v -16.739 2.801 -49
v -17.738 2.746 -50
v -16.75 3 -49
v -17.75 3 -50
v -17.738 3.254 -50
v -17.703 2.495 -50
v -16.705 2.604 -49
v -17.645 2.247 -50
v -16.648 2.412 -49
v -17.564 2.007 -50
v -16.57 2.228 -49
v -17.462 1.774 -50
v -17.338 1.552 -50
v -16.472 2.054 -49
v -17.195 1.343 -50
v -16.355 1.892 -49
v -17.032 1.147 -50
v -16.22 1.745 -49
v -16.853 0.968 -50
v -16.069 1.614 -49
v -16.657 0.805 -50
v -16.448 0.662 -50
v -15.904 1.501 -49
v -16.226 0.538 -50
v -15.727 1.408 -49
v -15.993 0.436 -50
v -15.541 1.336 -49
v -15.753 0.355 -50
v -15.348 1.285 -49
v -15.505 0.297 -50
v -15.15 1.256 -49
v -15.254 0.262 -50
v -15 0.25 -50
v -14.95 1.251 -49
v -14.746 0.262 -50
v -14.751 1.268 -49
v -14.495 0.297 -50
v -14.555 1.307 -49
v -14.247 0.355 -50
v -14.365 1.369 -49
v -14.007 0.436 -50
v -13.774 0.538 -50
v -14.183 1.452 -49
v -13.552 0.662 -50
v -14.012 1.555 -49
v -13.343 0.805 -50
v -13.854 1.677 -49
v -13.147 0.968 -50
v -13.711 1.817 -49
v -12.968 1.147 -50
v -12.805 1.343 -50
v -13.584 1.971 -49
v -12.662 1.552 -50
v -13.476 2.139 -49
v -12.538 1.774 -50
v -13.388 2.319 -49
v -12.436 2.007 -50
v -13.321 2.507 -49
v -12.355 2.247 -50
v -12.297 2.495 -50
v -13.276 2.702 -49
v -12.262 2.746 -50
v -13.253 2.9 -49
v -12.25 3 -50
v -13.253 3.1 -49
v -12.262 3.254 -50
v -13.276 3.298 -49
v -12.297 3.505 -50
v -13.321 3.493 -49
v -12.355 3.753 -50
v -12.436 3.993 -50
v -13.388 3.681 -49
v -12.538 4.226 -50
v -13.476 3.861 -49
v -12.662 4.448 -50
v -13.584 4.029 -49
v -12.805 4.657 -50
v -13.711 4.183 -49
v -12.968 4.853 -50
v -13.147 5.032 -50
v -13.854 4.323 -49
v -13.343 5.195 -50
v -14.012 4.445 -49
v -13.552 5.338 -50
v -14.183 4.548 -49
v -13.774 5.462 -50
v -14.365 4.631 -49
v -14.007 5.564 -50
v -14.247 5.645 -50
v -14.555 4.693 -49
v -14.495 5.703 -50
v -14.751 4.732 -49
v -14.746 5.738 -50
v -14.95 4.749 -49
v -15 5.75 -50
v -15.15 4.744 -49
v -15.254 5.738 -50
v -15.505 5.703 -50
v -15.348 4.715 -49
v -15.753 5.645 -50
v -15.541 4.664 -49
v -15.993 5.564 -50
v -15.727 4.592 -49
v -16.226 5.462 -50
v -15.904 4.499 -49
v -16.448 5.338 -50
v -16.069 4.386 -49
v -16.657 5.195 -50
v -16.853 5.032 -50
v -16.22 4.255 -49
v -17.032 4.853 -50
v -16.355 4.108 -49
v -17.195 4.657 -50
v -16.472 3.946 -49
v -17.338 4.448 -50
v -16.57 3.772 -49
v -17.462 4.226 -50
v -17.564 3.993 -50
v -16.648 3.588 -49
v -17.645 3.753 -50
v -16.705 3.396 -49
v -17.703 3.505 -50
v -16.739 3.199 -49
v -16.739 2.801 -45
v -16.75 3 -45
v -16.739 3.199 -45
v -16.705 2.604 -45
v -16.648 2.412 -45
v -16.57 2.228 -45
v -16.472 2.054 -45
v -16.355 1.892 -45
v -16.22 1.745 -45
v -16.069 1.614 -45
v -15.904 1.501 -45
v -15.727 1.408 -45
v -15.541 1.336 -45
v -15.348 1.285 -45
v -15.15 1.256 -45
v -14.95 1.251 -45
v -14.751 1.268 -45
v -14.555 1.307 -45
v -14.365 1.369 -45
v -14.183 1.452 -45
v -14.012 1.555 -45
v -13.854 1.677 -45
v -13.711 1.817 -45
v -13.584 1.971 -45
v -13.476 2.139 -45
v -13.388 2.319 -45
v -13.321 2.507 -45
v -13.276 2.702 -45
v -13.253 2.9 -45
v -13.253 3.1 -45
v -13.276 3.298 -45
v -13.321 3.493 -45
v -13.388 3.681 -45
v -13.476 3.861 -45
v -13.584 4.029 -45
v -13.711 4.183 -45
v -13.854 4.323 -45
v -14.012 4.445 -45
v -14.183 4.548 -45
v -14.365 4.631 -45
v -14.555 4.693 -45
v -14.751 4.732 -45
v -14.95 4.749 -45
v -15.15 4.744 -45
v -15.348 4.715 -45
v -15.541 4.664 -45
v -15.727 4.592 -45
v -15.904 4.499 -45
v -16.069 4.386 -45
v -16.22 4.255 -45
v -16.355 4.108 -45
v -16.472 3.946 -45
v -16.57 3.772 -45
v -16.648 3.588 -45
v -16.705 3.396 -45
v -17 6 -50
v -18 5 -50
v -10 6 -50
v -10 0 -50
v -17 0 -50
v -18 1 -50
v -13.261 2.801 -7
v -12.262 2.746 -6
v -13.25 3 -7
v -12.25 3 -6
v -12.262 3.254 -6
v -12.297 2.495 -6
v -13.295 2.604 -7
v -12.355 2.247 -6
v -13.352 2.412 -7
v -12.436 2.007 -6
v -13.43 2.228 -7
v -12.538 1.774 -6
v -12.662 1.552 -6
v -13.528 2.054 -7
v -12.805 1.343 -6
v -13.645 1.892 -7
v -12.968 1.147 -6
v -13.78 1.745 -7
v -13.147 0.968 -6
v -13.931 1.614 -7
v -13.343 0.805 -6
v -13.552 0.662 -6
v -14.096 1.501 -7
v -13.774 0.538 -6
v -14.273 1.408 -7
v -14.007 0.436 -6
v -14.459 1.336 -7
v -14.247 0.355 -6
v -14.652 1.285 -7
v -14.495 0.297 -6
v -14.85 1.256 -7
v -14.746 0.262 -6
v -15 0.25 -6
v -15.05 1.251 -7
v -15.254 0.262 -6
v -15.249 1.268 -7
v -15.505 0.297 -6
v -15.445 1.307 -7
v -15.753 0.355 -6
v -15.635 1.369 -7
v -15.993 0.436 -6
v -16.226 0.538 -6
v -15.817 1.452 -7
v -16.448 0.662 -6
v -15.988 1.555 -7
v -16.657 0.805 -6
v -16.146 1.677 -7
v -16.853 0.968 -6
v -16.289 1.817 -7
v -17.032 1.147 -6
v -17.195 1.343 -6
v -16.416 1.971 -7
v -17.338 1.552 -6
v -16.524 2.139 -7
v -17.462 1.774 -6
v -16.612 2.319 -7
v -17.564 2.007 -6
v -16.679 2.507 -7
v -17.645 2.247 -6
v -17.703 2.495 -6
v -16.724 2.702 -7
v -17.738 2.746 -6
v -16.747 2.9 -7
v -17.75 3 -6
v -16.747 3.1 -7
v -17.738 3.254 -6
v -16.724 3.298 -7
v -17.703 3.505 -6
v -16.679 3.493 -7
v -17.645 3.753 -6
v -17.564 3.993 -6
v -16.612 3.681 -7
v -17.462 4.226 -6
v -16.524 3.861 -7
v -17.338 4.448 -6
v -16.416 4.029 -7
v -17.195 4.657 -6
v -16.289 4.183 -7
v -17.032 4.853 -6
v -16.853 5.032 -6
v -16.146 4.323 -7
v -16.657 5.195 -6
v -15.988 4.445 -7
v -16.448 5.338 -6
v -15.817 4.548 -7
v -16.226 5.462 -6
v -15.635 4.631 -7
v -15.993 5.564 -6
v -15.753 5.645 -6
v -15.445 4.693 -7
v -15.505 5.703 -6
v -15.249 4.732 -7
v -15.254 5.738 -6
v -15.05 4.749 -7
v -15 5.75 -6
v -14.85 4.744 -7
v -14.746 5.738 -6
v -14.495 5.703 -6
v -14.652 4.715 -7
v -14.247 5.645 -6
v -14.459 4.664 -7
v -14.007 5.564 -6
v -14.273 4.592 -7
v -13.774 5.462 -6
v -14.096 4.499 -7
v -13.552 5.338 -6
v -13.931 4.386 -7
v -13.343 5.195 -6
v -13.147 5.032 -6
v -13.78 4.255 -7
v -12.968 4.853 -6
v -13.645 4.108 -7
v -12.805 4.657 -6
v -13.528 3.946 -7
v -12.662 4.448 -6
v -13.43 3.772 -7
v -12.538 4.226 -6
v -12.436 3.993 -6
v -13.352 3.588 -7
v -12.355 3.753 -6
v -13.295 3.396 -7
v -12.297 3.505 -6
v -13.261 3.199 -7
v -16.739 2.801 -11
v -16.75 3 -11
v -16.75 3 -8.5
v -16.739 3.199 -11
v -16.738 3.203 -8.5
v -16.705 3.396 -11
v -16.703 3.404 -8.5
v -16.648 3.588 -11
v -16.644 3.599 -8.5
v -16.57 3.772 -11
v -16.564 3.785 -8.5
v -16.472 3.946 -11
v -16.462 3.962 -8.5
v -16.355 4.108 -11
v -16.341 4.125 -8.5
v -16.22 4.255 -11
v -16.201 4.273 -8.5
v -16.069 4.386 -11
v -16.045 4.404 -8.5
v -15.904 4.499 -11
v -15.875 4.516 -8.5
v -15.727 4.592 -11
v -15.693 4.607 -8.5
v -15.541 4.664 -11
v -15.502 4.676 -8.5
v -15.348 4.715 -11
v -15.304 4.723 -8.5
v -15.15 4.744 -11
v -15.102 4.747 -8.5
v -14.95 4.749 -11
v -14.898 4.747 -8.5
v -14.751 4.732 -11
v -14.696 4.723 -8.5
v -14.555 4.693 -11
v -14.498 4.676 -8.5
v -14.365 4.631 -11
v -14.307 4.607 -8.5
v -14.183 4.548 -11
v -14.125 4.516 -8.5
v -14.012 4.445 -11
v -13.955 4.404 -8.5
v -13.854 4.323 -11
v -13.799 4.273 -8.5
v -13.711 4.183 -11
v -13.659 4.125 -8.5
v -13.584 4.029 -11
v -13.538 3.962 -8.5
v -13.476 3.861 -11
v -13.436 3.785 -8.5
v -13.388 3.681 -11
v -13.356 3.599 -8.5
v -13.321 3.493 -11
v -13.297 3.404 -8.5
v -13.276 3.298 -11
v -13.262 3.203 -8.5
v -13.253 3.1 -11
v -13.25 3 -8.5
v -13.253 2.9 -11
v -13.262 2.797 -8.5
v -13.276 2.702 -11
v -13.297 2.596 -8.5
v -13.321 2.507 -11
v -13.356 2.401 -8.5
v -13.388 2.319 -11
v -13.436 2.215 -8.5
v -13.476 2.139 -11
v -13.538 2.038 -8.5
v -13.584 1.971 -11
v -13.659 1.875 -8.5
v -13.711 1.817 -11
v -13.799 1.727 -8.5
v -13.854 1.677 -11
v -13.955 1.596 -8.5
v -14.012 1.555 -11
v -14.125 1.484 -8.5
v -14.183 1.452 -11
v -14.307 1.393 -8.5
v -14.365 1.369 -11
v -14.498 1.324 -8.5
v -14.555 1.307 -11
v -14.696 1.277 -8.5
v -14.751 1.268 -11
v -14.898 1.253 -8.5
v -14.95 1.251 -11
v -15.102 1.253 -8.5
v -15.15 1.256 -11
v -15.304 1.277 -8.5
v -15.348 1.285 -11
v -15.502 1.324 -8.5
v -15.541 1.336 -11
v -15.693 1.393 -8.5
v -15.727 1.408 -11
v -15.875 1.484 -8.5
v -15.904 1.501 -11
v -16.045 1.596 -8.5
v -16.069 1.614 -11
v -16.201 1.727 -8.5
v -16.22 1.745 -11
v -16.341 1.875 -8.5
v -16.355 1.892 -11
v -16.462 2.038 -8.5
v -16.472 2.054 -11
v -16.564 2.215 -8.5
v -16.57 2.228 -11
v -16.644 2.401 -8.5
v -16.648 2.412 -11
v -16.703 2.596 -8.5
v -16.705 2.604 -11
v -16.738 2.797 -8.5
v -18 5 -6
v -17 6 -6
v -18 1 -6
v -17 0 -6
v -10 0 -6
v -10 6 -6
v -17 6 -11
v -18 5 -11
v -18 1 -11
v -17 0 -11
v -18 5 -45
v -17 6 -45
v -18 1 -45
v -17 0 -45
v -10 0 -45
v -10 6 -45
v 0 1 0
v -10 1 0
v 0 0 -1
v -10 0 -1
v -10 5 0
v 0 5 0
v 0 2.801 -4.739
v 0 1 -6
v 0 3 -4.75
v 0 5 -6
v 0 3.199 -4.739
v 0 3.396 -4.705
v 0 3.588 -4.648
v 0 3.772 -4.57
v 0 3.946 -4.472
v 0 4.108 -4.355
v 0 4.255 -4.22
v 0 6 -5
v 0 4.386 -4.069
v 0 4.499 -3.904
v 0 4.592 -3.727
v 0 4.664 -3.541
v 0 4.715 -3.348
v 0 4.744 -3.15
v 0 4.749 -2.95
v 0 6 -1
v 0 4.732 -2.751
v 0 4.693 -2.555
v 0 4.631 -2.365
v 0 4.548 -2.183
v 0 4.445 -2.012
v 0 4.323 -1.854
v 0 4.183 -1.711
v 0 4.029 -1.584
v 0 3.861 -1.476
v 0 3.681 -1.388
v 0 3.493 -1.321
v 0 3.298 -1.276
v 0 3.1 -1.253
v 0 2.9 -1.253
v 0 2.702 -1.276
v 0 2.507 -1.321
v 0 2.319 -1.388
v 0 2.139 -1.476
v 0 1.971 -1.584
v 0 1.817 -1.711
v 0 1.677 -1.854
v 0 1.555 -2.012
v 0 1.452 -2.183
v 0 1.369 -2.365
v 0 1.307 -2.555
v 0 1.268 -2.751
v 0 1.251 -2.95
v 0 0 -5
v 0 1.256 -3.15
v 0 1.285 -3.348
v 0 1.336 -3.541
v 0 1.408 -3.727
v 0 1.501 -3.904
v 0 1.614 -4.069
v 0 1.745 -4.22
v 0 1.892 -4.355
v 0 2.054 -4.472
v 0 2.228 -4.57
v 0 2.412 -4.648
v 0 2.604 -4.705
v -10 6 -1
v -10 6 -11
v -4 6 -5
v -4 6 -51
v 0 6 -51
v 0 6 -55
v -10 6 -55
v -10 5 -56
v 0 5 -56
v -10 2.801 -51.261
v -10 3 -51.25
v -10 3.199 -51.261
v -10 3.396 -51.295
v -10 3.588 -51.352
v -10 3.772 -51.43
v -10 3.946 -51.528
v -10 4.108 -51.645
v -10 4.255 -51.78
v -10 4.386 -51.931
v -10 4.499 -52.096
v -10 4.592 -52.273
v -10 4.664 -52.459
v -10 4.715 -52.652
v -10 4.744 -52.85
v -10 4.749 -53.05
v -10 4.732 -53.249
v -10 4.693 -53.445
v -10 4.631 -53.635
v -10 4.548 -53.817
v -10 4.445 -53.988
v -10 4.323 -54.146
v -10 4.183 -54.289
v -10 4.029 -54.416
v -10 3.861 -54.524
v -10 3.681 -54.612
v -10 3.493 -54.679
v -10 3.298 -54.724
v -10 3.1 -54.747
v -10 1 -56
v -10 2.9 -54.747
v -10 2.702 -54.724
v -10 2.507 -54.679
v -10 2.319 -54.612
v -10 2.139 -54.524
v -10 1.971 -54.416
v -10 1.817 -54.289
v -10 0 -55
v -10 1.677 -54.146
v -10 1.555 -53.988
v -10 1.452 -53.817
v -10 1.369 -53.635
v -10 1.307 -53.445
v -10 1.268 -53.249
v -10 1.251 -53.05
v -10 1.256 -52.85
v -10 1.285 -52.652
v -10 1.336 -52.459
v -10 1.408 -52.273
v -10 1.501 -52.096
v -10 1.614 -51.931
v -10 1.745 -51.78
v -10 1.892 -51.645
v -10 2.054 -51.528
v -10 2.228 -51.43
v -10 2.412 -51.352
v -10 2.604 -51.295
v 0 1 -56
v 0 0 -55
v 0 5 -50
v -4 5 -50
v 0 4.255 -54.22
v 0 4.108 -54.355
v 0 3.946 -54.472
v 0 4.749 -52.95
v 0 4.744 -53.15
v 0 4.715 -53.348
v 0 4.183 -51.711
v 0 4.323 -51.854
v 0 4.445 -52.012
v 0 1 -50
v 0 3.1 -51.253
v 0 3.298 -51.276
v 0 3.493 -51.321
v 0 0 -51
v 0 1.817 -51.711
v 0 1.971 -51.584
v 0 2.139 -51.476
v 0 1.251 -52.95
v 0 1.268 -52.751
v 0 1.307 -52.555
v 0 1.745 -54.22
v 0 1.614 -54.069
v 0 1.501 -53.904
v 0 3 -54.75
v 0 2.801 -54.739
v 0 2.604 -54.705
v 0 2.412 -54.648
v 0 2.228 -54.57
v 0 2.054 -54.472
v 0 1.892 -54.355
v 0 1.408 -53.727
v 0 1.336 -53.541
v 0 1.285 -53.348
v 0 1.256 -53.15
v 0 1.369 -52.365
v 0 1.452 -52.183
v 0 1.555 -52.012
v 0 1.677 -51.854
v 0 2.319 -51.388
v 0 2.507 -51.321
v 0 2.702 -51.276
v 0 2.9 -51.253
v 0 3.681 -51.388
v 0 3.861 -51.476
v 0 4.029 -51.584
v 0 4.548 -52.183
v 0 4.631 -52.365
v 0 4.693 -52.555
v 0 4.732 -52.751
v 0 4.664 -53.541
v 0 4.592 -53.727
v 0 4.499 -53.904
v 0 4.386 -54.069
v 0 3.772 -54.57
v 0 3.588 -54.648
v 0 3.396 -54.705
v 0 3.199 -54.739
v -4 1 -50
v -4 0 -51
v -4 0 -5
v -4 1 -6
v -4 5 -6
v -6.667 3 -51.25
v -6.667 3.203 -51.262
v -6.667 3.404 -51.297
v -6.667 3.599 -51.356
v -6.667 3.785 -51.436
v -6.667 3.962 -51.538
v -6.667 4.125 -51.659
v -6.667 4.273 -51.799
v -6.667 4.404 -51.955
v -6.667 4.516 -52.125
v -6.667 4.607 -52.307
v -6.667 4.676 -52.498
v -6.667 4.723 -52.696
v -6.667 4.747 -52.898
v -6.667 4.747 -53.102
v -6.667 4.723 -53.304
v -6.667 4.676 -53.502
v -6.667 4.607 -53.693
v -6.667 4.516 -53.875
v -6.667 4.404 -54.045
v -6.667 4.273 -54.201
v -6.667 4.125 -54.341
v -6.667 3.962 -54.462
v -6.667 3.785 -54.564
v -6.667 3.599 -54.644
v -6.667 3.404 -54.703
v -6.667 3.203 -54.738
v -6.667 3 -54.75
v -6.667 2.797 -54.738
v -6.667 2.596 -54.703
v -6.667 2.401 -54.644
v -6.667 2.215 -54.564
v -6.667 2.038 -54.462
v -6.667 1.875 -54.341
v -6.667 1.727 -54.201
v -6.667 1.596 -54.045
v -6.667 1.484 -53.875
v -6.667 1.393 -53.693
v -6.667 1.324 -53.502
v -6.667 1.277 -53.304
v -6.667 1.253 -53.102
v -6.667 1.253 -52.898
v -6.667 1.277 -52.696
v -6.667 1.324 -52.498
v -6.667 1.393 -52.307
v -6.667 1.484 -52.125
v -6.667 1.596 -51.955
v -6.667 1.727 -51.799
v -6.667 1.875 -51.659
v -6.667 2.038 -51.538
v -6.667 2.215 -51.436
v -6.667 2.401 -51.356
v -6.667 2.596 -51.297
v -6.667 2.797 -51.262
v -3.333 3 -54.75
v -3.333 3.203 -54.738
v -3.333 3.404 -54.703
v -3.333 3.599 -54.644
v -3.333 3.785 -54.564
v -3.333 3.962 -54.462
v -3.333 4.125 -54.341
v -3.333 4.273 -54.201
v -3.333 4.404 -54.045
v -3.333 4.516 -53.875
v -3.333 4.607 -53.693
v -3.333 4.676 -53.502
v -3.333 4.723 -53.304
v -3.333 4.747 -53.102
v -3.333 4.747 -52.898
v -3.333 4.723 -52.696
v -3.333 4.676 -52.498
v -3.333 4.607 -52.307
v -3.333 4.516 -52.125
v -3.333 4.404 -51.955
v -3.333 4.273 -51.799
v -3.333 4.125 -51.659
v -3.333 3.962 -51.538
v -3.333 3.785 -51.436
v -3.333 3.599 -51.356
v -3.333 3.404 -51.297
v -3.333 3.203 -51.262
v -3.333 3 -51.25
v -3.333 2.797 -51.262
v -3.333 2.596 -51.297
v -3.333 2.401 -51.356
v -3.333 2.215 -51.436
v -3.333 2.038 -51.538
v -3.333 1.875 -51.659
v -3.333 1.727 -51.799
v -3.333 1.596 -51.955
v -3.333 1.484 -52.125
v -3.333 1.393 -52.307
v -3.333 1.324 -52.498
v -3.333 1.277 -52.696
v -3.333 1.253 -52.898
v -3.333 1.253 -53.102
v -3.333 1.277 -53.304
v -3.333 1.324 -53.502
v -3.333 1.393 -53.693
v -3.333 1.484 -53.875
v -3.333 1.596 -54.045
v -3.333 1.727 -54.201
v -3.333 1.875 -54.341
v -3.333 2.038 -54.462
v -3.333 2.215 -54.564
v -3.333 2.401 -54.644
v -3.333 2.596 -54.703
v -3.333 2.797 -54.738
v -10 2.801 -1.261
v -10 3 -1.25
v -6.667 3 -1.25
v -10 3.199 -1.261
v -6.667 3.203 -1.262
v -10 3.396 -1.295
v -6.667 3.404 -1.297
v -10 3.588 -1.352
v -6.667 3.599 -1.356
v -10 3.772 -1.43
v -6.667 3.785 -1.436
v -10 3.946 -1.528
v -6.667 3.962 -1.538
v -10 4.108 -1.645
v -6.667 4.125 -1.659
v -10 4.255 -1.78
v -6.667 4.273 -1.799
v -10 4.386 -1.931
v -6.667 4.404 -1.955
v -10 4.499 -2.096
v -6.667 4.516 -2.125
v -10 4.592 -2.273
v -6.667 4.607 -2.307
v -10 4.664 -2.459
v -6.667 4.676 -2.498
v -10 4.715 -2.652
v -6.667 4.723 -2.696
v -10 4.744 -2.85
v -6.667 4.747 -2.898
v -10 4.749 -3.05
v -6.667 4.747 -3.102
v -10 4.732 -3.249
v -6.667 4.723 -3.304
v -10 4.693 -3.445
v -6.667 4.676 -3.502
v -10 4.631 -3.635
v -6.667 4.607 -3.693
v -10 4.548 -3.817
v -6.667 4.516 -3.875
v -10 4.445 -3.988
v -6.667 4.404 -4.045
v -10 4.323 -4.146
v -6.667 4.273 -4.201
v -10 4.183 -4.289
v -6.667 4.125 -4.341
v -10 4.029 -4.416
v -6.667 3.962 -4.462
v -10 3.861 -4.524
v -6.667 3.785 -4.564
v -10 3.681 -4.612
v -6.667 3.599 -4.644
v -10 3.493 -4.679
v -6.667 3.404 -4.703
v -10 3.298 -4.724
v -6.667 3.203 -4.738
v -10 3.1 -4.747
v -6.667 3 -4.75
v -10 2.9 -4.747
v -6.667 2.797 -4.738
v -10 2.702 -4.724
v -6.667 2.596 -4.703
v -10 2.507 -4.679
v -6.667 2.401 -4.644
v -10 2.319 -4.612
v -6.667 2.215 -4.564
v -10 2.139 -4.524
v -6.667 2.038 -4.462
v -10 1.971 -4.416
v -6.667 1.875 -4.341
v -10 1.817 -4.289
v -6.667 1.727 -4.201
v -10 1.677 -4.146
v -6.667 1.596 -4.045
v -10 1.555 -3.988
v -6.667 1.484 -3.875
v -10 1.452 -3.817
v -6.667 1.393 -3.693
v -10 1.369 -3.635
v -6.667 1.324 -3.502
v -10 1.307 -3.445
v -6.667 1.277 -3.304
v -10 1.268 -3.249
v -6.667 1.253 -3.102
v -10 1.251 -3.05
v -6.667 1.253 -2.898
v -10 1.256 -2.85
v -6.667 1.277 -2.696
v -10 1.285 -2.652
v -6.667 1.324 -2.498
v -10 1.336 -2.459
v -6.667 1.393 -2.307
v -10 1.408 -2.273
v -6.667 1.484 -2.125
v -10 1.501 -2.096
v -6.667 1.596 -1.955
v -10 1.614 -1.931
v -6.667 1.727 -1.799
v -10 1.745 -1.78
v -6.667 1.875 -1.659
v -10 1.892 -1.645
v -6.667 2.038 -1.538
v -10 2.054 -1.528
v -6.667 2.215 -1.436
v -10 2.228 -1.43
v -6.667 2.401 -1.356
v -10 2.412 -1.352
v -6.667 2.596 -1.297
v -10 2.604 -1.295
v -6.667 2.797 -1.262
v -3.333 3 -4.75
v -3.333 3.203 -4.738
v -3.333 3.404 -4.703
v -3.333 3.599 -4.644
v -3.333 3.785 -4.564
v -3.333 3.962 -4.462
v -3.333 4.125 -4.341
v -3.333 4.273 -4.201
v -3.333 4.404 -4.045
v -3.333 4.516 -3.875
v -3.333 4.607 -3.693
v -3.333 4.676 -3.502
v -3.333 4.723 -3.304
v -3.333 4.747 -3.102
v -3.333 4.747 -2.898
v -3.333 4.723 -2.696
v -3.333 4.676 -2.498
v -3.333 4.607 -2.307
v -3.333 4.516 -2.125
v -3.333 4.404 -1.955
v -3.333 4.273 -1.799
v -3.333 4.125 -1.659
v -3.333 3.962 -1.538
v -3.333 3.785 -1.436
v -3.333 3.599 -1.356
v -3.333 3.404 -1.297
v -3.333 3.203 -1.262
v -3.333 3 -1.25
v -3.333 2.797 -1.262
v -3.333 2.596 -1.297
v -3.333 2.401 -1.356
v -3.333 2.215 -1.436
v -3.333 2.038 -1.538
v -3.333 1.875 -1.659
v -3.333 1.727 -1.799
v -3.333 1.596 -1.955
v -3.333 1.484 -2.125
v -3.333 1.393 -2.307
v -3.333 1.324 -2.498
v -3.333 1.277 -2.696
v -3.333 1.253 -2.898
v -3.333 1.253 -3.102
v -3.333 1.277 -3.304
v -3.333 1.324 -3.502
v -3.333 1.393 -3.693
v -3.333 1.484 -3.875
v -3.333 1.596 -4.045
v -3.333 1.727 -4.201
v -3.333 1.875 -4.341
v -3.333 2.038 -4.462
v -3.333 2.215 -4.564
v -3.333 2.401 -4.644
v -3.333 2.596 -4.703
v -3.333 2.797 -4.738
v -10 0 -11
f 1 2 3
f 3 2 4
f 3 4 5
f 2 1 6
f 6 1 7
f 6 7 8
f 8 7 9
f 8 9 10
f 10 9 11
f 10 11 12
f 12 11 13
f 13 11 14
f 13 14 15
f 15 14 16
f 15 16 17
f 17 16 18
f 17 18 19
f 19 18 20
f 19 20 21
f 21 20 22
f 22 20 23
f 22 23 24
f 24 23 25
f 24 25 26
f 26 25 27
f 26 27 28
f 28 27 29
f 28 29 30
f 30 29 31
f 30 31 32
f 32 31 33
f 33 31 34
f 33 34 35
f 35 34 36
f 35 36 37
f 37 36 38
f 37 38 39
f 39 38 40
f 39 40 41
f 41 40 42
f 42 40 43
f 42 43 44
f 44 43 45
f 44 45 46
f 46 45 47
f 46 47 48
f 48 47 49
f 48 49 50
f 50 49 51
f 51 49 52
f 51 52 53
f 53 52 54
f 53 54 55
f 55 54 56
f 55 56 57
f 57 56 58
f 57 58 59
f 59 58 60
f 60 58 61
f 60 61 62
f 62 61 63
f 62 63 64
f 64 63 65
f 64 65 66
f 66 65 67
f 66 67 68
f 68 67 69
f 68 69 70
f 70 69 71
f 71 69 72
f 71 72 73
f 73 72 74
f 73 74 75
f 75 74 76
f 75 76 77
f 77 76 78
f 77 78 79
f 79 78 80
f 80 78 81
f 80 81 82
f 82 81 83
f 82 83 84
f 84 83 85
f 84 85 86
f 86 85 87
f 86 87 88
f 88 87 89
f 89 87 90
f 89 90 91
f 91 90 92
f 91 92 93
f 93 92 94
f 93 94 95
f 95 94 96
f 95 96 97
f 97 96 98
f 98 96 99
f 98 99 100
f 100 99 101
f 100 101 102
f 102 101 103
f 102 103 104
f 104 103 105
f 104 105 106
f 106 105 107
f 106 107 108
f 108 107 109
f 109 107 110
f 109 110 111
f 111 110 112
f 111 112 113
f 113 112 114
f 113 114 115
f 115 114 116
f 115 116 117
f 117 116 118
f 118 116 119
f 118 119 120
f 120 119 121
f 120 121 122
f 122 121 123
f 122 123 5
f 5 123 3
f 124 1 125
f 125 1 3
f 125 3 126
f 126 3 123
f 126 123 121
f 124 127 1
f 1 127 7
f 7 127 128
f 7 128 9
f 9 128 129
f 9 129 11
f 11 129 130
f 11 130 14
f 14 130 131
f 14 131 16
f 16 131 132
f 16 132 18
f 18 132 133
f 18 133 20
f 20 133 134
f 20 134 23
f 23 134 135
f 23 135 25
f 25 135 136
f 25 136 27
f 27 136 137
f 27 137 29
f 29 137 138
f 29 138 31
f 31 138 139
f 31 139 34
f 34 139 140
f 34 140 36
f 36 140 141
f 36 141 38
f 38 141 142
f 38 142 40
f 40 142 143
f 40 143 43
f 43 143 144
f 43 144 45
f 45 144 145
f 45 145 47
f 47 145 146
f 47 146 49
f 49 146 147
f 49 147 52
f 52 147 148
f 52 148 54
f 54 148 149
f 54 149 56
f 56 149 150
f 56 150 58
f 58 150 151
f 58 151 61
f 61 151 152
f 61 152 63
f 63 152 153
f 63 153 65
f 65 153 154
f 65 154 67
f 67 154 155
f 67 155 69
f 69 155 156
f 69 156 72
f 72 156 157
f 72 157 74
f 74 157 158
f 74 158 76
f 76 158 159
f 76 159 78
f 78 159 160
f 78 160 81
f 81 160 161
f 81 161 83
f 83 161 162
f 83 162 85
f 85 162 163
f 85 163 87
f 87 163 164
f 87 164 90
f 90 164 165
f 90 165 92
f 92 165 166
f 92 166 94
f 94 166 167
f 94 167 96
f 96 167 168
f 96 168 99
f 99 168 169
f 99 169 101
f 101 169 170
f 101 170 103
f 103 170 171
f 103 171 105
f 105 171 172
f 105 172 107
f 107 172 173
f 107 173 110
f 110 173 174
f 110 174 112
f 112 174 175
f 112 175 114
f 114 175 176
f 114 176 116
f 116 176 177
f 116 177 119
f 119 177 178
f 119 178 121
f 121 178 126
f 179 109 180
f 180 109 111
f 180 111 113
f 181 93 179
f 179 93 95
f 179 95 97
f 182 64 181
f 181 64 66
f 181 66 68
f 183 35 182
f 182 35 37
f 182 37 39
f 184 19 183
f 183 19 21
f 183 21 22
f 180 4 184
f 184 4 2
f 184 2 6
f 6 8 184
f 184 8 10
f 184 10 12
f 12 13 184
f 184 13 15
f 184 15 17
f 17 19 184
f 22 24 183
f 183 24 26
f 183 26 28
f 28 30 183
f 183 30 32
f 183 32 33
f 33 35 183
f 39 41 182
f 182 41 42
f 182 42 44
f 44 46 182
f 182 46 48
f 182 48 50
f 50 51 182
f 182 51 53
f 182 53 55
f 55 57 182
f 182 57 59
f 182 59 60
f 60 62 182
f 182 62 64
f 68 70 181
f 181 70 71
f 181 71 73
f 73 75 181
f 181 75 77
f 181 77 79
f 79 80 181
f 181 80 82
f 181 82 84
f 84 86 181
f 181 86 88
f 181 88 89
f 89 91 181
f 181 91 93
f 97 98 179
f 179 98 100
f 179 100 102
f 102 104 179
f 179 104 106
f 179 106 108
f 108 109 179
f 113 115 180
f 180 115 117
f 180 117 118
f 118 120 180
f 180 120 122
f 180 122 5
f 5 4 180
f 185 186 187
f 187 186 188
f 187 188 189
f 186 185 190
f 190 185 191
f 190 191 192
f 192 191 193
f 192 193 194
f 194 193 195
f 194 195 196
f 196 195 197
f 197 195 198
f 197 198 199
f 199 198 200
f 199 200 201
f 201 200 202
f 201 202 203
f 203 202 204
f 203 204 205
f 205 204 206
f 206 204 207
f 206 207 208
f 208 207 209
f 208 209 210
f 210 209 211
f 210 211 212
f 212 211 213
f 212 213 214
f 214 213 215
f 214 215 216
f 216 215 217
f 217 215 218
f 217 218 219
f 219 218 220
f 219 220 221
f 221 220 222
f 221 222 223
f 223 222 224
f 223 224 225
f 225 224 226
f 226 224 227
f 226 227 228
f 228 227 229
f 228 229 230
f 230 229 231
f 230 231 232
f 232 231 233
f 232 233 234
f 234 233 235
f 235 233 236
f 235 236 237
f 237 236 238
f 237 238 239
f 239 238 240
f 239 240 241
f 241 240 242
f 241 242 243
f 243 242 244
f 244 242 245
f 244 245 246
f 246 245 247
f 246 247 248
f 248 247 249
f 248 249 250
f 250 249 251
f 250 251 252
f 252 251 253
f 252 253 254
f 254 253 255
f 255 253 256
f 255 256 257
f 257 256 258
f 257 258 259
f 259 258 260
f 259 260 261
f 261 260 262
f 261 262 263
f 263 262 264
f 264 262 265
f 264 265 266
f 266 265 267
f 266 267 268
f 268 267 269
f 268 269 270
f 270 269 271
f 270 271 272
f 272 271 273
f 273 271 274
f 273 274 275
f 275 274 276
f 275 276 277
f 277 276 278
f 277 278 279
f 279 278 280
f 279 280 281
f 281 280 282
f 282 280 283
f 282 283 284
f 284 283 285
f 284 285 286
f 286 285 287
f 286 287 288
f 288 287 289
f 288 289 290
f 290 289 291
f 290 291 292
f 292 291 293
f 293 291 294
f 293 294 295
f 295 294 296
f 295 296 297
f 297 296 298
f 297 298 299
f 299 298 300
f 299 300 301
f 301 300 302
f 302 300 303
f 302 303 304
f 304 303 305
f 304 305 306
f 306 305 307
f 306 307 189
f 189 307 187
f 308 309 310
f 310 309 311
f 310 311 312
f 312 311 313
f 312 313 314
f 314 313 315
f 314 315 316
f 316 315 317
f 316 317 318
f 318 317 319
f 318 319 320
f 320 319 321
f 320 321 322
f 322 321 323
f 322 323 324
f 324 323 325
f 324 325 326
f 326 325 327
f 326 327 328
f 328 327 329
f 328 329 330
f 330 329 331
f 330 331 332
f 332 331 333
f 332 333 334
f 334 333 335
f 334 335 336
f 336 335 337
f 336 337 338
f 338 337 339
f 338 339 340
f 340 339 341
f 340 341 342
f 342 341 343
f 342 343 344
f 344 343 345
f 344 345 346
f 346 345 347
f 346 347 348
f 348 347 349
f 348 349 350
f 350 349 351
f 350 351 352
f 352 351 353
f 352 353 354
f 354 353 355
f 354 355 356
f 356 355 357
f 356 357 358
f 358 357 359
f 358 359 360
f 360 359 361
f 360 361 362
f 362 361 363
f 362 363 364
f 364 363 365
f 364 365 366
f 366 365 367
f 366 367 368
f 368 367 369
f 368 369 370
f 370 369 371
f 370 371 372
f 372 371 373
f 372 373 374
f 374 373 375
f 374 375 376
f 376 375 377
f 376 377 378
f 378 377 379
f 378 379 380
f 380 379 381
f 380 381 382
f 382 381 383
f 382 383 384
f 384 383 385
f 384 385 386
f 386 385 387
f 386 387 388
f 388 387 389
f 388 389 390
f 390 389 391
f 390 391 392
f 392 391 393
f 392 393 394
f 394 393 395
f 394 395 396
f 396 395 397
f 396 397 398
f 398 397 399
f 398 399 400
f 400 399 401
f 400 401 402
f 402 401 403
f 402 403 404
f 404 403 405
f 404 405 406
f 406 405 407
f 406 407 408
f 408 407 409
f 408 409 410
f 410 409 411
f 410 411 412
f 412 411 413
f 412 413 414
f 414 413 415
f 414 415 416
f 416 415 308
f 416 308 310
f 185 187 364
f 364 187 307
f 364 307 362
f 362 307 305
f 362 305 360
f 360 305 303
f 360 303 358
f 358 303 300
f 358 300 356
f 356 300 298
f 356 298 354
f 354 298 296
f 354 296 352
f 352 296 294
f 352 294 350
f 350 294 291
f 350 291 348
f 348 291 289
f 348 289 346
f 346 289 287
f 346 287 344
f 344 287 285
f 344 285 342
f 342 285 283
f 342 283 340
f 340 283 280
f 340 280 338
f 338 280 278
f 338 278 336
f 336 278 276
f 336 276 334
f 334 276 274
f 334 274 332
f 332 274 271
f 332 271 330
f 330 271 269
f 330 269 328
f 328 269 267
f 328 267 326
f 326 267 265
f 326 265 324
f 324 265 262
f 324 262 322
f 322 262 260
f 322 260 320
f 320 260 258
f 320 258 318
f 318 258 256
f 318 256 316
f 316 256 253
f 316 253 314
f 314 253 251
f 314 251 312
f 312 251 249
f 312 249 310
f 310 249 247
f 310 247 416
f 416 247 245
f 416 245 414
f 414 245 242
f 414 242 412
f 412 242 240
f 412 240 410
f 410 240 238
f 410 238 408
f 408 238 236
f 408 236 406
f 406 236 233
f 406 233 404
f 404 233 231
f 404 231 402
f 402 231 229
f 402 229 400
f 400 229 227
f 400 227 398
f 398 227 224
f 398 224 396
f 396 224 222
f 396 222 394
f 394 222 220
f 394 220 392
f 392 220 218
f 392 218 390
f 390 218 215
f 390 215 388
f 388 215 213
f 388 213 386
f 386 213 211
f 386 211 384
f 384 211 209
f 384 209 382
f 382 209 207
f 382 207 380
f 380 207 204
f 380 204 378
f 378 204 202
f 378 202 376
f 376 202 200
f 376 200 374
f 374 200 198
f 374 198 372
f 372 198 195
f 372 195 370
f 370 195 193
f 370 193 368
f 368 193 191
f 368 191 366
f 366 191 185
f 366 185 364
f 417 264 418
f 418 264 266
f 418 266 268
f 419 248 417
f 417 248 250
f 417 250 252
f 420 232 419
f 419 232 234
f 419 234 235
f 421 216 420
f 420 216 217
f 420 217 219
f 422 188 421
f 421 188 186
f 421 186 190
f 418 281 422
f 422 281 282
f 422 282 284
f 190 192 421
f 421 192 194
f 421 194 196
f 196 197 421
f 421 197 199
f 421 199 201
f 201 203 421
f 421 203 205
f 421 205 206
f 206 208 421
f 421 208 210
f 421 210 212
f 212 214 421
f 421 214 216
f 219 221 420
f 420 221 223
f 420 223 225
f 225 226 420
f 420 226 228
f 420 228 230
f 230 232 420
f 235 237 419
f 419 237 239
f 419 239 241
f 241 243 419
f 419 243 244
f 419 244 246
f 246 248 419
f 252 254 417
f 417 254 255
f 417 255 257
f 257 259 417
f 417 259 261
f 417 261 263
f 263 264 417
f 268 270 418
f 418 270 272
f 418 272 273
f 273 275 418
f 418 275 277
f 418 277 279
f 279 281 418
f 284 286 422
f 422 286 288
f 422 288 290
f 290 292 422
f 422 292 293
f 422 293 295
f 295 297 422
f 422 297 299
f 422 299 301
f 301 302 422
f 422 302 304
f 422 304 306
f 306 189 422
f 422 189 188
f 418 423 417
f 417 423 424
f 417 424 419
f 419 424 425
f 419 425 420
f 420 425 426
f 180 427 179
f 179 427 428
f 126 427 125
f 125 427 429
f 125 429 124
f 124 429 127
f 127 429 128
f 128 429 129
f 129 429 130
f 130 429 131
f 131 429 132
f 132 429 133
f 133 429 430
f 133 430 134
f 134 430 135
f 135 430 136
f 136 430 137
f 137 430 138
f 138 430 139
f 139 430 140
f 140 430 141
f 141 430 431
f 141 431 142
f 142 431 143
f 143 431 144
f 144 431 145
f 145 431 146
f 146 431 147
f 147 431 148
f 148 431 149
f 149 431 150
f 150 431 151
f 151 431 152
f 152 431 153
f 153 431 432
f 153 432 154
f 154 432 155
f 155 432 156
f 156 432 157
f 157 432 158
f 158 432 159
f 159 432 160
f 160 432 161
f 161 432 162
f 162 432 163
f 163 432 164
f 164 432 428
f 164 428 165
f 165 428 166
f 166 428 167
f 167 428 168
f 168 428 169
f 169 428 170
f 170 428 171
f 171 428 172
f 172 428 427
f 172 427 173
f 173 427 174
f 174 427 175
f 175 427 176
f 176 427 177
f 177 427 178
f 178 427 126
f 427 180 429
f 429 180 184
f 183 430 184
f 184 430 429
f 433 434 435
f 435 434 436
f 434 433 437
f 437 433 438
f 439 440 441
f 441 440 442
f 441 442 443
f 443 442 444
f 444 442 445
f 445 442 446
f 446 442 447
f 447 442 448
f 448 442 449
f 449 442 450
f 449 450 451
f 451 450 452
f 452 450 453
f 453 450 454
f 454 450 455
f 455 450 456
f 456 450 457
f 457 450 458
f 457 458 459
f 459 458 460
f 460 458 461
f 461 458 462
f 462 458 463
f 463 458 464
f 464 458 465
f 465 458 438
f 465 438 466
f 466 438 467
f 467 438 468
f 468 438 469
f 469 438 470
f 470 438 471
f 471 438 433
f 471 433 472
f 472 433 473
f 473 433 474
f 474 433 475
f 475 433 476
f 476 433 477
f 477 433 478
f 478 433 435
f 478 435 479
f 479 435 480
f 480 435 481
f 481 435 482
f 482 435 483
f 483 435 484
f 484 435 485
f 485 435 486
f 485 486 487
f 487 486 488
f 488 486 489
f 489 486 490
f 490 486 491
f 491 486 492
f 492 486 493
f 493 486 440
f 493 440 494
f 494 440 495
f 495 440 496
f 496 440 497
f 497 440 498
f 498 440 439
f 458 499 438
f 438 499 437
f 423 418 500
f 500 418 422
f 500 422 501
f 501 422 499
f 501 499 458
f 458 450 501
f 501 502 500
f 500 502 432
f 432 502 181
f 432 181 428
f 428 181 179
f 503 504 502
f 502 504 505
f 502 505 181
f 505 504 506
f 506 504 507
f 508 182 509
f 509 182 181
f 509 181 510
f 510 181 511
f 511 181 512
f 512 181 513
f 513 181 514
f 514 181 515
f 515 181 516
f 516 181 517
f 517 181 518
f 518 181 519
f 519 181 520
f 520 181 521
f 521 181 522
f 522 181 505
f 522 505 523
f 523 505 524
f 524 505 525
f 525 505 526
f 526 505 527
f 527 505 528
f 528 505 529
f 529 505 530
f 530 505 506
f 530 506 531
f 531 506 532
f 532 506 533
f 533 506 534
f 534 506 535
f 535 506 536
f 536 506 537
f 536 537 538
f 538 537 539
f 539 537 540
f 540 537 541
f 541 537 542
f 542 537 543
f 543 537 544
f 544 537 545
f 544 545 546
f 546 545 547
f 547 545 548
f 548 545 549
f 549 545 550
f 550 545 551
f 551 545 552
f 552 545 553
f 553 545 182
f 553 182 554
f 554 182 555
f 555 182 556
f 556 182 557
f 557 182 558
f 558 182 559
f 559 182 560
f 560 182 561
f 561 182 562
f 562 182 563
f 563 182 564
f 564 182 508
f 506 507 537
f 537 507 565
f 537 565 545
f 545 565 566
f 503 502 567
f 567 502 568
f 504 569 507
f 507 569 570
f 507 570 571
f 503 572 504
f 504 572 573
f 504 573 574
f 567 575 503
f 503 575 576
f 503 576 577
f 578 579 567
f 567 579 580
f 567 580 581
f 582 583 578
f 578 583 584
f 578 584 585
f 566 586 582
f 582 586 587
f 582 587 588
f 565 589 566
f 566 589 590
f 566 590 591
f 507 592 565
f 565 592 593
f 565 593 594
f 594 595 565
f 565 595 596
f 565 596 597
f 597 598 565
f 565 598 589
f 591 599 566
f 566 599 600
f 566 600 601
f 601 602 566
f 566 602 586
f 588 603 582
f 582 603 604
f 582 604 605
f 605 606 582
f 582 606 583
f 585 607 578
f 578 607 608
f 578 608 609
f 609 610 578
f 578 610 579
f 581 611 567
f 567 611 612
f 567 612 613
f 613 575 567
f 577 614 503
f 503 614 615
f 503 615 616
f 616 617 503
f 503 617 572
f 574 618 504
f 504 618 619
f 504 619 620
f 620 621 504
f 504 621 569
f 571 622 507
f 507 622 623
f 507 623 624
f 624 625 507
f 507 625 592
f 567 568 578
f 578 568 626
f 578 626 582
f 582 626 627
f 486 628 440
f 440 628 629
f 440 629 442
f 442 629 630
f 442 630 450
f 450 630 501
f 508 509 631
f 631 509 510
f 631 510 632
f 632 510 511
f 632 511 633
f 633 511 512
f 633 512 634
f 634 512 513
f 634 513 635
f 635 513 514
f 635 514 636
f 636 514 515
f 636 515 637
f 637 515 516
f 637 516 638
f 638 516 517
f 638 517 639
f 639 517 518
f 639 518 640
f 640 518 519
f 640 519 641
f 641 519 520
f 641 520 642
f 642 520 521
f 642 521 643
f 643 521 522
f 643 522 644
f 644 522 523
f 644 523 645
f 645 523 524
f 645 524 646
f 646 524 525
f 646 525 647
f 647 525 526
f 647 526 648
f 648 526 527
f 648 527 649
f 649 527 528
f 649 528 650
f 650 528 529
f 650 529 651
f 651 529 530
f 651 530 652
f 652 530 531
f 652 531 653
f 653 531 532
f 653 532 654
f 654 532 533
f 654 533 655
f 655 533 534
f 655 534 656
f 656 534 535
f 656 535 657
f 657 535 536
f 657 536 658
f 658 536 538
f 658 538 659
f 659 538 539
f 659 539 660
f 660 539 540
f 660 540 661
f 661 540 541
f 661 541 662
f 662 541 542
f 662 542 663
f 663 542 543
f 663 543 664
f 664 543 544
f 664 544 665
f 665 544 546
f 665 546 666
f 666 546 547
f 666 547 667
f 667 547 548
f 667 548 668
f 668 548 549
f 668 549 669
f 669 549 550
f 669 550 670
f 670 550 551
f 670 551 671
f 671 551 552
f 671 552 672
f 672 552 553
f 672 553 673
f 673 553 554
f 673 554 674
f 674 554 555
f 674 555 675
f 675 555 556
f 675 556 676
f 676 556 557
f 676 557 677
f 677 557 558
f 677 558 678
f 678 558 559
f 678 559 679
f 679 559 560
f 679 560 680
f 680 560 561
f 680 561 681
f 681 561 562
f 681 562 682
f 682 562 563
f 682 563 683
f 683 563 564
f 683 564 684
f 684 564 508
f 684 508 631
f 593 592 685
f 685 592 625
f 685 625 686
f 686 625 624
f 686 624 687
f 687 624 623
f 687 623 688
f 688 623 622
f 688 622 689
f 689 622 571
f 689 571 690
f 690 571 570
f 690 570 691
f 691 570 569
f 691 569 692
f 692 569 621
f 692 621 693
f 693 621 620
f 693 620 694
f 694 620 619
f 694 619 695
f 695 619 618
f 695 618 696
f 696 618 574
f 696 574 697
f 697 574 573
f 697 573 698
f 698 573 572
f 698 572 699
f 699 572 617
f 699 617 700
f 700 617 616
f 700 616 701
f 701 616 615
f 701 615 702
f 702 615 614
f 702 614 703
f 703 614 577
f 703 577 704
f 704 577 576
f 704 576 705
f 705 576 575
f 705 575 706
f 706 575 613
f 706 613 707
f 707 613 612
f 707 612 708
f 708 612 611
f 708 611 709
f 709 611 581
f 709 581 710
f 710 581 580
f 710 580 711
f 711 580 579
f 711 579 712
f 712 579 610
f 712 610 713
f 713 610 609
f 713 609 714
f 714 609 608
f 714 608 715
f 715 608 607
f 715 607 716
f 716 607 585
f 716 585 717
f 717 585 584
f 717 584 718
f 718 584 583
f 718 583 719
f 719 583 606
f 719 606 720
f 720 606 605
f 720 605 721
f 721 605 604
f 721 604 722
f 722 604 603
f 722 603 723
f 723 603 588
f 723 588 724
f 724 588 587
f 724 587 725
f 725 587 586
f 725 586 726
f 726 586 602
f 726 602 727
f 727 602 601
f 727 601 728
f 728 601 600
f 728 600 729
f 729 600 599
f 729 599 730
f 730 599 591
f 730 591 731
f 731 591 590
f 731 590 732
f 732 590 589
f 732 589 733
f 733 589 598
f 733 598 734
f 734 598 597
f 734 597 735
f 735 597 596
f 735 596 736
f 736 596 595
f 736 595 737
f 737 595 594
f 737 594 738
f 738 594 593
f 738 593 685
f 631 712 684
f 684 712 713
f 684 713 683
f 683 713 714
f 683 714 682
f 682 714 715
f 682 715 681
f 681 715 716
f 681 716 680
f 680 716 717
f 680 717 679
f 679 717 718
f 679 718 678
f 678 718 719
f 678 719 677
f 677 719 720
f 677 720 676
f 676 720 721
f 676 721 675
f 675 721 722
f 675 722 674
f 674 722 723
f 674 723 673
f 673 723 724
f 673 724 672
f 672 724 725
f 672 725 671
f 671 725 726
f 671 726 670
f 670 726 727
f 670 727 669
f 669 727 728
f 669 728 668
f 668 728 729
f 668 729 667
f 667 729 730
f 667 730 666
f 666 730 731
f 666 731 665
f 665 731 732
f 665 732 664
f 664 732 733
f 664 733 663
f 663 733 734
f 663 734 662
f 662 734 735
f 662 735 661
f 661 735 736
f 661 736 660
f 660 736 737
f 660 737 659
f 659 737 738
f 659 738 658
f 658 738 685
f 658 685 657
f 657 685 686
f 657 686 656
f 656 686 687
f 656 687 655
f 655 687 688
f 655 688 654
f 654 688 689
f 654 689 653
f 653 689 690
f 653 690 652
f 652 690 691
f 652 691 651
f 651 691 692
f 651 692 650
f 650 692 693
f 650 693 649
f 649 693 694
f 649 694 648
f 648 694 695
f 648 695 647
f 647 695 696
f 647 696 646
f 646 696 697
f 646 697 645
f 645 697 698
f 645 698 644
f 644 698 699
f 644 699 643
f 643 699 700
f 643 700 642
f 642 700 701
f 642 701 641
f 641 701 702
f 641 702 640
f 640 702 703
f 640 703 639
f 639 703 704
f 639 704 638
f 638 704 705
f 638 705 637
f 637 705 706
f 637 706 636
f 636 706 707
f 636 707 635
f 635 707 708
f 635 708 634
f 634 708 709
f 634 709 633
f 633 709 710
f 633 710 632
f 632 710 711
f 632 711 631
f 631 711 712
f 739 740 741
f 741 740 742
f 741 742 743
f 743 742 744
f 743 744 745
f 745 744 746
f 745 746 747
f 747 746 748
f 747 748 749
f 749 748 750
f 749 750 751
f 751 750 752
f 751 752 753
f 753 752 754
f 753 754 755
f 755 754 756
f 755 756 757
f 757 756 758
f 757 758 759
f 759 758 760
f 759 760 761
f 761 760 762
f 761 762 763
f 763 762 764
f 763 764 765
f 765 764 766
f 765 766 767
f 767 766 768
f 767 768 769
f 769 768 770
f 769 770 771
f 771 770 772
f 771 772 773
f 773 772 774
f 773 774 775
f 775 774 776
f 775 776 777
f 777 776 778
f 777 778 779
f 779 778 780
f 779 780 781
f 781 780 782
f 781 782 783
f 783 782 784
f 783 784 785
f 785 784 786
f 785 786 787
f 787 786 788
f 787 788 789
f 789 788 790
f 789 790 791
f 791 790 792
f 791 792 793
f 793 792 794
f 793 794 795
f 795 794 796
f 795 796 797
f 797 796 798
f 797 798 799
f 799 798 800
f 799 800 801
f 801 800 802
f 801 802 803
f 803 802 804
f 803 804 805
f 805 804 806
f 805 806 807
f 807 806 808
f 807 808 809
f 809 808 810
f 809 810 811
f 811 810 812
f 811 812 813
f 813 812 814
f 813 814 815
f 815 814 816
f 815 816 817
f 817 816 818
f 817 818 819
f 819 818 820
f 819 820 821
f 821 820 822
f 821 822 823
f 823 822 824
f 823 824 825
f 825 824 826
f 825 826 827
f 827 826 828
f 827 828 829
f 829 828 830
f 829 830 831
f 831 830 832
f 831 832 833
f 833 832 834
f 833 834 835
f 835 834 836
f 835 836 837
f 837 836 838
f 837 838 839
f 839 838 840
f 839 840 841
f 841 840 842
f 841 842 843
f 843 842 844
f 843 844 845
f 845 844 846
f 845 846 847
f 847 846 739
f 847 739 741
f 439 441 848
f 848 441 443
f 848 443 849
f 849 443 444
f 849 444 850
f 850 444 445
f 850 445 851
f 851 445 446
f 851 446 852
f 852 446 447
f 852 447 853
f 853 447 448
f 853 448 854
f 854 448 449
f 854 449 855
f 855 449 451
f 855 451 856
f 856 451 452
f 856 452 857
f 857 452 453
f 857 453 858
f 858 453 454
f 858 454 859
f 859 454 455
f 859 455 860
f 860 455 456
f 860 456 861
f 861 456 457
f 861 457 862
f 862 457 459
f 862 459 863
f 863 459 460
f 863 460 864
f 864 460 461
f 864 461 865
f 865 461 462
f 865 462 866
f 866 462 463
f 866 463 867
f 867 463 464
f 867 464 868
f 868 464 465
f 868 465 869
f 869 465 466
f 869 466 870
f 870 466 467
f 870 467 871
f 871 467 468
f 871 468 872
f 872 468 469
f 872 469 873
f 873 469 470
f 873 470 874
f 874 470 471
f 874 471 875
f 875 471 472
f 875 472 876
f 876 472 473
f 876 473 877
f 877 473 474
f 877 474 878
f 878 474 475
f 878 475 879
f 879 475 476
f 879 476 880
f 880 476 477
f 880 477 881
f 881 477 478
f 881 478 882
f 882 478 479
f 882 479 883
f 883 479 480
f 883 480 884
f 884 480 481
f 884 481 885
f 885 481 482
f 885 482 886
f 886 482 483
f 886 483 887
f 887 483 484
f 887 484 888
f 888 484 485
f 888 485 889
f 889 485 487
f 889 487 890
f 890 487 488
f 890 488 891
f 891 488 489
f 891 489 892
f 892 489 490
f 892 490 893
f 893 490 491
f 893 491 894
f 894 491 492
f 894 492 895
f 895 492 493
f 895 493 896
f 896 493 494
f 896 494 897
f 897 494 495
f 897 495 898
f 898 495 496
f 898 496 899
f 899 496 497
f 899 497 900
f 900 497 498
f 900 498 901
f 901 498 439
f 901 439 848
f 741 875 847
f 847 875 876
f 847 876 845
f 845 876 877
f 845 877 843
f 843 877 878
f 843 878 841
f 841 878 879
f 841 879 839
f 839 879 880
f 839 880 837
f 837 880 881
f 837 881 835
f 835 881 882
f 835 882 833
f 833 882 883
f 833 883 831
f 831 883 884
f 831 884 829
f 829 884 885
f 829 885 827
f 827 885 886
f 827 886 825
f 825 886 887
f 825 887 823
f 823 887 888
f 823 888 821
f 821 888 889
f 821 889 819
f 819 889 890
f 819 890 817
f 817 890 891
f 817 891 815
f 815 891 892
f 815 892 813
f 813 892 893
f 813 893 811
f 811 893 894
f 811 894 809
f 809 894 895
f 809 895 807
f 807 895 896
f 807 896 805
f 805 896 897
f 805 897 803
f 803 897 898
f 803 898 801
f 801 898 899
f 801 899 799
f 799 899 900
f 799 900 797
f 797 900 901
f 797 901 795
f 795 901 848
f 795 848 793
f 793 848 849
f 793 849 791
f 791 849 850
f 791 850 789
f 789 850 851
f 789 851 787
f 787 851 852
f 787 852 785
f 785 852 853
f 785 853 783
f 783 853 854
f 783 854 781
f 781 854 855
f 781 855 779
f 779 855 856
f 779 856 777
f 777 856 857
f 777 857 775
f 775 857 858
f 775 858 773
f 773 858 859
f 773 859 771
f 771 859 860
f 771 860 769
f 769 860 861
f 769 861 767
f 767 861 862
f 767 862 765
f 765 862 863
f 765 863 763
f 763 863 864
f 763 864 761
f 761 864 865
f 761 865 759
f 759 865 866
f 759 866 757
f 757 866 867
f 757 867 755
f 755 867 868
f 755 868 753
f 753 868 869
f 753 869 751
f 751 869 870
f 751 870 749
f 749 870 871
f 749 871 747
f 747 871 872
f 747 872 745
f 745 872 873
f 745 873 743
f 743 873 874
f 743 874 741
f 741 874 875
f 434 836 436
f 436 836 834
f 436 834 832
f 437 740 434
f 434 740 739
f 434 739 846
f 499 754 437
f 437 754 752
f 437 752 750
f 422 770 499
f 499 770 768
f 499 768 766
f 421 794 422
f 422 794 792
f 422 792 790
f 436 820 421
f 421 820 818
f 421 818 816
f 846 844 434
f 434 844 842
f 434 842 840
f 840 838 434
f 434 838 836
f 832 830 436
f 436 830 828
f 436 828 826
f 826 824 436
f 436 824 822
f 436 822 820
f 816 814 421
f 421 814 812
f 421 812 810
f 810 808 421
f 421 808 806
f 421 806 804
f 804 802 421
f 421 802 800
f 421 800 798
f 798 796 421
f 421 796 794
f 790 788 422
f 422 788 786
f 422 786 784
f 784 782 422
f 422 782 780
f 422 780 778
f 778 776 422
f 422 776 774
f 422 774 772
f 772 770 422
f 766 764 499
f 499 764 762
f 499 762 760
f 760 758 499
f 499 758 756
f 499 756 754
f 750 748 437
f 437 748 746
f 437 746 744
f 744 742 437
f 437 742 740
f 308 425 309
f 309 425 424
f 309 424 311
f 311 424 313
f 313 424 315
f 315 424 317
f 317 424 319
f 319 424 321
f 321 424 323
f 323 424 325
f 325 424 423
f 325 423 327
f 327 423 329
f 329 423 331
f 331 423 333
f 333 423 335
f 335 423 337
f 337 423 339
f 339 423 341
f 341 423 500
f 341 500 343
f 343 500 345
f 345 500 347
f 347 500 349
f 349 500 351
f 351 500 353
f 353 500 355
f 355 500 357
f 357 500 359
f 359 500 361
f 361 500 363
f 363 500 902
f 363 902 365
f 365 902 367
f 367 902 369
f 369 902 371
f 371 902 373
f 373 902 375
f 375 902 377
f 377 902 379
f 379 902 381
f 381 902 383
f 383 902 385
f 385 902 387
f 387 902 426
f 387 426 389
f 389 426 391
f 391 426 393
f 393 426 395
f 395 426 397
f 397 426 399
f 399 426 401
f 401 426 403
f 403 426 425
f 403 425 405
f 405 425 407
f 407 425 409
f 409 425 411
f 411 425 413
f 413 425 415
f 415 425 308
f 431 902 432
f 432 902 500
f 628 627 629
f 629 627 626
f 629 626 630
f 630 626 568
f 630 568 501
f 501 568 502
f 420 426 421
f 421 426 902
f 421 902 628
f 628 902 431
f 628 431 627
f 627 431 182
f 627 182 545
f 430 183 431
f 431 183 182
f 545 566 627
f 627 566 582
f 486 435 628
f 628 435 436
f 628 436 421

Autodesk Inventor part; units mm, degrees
ref_plane "YZ Plane" through (0, 0, 0) normal (1, 0, 0) x (0, 1, 0)
ref_plane "XZ Plane" through (0, 0, 0) normal (0, 1, 0) x (-1, 0, 0)
ref_plane "XY Plane" through (0, 0, 0) normal (0, 0, 1) x (1, 0, 0)
sketch "Sketch1" plane through (0, 0, 0) normal (0, 1, 0) x (-1, 0, 0)
  line L0 (0, 0) -> (0, -6)
  line L1 (0, -6) -> (4, -6)
  line L2 (4, -6) -> (4, -50)
  line L3 (4, -50) -> (0, -50)
  line L4 (0, -50) -> (0, -56)
  line L5 (0, 0) -> (10, 0)
  line L6 (0, 0) -> (10, 0)
  line L7 (10, 0) -> (10, -6)
  line L8 (10, -6) -> (18, -6)
  line L9 (18, -6) -> (18, -11)
  line L10 (18, -11) -> (10, -11)
  line L11 (10, -11) -> (10, -45)
  line L12 (10, -45) -> (18, -45)
  line L13 (18, -45) -> (18, -50)
  line L14 (18, -50) -> (10, -50)
  line L15 (0, -56) -> (4, -56)
  line L16 (10, -50) -> (10, -56)
  line L17 (10, -56) -> (4, -56)
  point P0 (0, -3)
  point P1 (0, -53)
  dimension "d2" = 50
  dimension "d3" = 6
  dimension "d4" = 4
  dimension "d19" = 6
  dimension "d22" = 8
  dimension "d42" = 6
  dimension "d43" = 6
  dimension "d45" = 5
  dimension "d46" = 34
extrude "Extrusion1" add sketch "Sketch1" along normal blind 6
sketch "Sketch4" plane through (0, 0, -50) normal (1, 0, 0) x (0, 0, -1)
  line L0 (-44, 0) -> (0, 0) projected
  line L1 (-50, 0) -> (-50, 6) projected
  line L2 (-44, 0) -> (-50, 6) construction
  circle A0 centre (-47, 3) radius 1.75
  line L3 (0, 0) -> (6, 0) projected
  line L4 (-44, 6) -> (0, 6) projected
  line L5 (6, 0) -> (0, 6) construction
  circle A1 centre (3, 3) radius 1.75
  dimension "d24" = 3.5
extrude "Extrusion4" cut sketch "Sketch4" against normal through all
chamfer "Chamfer2" distance 1 angle 45 8 edges at (-2, 6, -6) (-2, 0, -6) (-2, 0, -50) (-2, 6, -50) (-5, 0, -56) (-5, 6, -56) (-5, 6, 0) (-5, 0, 0)
sketch "Sketch5" plane through (-18, 0, -6) normal (0, 0, 1) x (1, 0, 0)
  circle A0 centre (3, 3) radius 3 construction
  line L0 (0, 6) -> (8, 6) projected
  line L1 (0, 0) -> (0, 6) projected
  line L2 (0, 0) -> (8, 0) projected
  circle A1 centre (3, 3) radius 1.75
  point P0 (18, 0)
  dimension "d33" = 3.5
chamfer "Chamfer4" distance 1 angle 45 4 edges at (-18, 0, -47.5) (-18, 6, -47.5) (-18, 0, -8.5) (-18, 6, -8.5)
extrude "Extrusion5" cut sketch "Sketch5" against normal through all
chamfer "Chamfer5" distance 1 angle 45 2 edges at (-16.75, 3, -6) (-16.75, 3, -50)
properties part number "camadapter3"
